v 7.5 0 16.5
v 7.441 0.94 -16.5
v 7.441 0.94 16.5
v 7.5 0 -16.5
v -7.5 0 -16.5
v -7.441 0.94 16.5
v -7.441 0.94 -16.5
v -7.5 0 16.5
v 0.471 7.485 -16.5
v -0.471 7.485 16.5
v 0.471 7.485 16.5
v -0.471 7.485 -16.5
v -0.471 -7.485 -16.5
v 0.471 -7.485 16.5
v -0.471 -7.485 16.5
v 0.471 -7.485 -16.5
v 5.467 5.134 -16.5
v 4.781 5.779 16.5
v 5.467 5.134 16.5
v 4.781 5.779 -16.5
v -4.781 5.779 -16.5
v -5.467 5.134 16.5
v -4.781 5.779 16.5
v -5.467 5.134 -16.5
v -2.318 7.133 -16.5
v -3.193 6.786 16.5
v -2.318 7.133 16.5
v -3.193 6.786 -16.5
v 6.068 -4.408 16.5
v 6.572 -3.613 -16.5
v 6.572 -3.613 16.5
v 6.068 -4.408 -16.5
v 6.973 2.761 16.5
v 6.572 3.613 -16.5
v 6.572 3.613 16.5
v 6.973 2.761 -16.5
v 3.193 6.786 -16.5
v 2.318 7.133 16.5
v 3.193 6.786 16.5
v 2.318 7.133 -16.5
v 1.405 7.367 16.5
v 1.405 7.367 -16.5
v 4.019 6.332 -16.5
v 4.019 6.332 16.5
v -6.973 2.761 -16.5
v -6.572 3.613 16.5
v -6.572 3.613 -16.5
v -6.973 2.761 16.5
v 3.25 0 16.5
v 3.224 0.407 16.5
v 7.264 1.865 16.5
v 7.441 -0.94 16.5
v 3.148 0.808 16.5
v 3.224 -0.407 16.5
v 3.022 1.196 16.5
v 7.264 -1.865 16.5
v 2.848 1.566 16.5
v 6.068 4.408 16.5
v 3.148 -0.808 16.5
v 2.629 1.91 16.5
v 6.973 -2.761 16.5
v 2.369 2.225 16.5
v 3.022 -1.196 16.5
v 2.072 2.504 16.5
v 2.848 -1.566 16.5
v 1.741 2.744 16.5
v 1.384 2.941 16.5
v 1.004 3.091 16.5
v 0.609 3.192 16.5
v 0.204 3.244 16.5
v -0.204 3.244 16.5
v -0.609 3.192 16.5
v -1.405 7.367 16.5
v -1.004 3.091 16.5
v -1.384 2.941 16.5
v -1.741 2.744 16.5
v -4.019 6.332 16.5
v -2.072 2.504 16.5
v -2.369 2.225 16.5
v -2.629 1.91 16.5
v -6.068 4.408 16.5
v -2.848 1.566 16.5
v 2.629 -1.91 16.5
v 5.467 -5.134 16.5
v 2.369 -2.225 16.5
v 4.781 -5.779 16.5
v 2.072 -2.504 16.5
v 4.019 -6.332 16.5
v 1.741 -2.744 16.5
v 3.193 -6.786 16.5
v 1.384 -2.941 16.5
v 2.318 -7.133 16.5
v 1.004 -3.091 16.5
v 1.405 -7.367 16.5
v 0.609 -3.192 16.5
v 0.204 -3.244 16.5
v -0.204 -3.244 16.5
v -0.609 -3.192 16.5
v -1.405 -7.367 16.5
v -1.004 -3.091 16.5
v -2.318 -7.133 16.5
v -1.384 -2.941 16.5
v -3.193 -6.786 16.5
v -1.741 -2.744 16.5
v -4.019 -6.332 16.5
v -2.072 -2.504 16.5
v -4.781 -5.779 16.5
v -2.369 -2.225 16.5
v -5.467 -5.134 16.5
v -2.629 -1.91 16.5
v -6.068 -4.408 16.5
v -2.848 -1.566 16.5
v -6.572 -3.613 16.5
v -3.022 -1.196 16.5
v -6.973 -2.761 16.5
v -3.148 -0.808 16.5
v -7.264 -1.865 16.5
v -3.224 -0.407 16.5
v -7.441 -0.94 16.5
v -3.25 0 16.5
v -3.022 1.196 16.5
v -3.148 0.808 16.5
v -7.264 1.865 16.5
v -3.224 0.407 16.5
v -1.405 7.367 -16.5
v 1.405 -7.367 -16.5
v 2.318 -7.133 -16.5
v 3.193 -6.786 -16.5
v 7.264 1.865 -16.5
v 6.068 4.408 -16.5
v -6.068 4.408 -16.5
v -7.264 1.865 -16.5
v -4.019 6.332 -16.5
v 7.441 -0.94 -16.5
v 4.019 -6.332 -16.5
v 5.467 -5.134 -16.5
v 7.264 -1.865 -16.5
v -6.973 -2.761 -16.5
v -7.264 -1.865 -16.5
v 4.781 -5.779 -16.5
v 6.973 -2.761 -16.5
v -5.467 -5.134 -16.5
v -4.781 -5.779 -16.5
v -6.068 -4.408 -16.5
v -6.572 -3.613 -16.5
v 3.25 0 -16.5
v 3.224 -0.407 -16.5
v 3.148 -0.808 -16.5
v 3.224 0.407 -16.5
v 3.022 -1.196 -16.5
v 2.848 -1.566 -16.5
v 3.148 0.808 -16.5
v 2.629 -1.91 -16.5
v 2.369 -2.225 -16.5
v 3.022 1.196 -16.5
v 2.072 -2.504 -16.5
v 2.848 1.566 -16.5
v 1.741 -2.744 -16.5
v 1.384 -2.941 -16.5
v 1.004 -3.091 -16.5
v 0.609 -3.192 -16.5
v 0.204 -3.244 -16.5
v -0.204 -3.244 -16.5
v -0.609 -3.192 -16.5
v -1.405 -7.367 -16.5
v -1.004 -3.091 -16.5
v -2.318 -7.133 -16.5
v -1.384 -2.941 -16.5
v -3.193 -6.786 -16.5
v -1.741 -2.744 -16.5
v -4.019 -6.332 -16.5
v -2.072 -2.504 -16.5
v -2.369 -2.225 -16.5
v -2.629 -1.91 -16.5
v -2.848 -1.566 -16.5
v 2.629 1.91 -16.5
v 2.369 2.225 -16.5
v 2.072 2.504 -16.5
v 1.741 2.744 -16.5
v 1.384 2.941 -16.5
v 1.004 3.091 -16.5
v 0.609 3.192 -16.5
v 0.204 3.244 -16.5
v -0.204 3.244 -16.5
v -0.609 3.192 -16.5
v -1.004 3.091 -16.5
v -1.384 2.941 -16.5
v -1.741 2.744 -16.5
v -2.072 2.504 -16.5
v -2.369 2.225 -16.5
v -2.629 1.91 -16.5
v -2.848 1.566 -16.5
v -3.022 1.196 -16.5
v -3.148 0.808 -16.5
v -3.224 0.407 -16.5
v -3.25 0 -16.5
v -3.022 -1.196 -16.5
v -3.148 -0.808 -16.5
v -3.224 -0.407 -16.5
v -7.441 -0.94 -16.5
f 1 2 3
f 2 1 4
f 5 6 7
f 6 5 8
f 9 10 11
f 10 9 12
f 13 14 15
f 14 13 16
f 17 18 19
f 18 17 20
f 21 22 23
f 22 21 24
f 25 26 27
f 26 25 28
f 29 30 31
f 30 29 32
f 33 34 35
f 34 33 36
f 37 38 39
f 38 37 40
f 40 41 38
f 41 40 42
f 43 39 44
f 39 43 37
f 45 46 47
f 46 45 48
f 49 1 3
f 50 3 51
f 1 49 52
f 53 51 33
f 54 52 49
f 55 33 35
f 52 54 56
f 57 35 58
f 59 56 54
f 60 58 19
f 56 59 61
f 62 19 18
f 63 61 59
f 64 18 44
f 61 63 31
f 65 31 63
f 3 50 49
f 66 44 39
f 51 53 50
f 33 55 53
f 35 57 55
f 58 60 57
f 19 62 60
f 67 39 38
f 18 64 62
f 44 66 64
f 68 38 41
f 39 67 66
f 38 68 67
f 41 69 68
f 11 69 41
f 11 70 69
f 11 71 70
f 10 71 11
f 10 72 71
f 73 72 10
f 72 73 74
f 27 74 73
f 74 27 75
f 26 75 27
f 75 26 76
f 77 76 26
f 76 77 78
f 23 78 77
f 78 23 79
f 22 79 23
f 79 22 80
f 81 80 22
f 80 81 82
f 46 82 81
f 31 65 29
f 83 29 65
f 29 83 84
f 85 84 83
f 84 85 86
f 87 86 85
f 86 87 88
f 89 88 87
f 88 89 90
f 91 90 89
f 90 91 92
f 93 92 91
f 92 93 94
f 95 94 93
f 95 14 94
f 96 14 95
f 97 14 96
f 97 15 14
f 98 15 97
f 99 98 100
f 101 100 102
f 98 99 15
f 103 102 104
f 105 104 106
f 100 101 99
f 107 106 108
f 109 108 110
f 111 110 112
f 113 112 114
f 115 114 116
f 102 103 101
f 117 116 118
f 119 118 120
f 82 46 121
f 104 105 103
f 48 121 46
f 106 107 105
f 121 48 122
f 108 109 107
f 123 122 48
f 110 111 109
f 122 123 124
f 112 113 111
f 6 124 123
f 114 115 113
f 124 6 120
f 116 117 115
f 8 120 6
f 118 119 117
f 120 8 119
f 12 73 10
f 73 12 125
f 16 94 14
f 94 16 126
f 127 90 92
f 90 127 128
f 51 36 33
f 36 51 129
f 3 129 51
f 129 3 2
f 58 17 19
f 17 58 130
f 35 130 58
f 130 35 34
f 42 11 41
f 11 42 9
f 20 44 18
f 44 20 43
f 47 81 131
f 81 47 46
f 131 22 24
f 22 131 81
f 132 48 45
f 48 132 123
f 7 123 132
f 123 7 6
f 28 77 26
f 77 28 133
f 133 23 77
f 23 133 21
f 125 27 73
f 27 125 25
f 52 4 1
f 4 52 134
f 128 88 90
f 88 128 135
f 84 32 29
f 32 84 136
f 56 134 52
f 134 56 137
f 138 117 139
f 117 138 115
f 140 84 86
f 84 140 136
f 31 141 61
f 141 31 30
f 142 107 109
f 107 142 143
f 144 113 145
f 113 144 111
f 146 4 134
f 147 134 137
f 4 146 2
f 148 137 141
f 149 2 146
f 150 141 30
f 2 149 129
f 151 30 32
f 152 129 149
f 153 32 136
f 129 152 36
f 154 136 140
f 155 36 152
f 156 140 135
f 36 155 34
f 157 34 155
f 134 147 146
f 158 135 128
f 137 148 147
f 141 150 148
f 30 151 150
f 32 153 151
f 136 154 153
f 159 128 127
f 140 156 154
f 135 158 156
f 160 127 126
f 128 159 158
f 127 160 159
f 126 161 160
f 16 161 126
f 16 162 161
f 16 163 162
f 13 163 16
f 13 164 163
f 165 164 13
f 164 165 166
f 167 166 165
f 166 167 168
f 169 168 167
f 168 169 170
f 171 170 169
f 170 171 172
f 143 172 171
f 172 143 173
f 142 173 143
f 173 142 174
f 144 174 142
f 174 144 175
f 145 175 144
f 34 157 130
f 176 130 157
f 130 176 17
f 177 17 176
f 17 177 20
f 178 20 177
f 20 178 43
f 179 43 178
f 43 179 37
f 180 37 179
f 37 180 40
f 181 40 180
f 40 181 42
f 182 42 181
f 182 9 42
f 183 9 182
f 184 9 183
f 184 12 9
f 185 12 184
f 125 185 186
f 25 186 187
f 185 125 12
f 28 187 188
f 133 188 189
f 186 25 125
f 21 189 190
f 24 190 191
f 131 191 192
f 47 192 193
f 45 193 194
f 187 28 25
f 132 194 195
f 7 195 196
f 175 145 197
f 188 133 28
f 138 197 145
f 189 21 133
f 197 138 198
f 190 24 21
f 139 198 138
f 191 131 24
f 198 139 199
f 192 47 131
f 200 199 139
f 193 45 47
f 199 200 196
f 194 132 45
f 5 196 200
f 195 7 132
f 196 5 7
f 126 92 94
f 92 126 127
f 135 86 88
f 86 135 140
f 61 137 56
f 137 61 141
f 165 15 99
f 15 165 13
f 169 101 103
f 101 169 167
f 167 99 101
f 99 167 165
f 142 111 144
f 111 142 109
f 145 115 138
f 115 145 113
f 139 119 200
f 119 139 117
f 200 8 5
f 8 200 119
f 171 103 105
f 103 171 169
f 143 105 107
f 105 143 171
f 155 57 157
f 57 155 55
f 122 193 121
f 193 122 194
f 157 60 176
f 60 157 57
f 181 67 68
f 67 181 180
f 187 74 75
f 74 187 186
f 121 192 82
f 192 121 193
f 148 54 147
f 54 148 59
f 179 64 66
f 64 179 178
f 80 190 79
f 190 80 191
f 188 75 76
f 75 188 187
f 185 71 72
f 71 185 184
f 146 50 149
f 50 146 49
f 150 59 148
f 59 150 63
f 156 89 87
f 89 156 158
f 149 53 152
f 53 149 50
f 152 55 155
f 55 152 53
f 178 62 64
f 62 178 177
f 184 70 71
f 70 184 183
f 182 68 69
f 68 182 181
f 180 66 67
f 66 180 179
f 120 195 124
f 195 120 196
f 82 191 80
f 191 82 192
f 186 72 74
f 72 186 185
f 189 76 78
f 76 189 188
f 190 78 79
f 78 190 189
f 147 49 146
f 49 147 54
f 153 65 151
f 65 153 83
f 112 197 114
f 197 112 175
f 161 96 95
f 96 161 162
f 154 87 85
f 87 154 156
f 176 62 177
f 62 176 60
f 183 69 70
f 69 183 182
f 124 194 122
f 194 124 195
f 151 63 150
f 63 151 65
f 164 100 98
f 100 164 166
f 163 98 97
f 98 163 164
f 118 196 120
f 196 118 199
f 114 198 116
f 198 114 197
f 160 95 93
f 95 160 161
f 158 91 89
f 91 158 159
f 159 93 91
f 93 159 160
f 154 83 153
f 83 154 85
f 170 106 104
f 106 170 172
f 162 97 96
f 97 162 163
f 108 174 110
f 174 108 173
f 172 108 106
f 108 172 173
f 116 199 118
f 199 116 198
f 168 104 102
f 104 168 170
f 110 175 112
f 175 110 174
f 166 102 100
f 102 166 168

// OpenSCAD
$fn = 50;


difference() {
	union() {
		translate(v = [0, 0, -16.5000000000]) {
			cylinder(h = 33, r = 7.5000000000);
		}
	}
	union() {
		translate(v = [0, 0, -100.0000000000]) {
			cylinder(h = 200, r = 3.2500000000);
		}
	}
}
